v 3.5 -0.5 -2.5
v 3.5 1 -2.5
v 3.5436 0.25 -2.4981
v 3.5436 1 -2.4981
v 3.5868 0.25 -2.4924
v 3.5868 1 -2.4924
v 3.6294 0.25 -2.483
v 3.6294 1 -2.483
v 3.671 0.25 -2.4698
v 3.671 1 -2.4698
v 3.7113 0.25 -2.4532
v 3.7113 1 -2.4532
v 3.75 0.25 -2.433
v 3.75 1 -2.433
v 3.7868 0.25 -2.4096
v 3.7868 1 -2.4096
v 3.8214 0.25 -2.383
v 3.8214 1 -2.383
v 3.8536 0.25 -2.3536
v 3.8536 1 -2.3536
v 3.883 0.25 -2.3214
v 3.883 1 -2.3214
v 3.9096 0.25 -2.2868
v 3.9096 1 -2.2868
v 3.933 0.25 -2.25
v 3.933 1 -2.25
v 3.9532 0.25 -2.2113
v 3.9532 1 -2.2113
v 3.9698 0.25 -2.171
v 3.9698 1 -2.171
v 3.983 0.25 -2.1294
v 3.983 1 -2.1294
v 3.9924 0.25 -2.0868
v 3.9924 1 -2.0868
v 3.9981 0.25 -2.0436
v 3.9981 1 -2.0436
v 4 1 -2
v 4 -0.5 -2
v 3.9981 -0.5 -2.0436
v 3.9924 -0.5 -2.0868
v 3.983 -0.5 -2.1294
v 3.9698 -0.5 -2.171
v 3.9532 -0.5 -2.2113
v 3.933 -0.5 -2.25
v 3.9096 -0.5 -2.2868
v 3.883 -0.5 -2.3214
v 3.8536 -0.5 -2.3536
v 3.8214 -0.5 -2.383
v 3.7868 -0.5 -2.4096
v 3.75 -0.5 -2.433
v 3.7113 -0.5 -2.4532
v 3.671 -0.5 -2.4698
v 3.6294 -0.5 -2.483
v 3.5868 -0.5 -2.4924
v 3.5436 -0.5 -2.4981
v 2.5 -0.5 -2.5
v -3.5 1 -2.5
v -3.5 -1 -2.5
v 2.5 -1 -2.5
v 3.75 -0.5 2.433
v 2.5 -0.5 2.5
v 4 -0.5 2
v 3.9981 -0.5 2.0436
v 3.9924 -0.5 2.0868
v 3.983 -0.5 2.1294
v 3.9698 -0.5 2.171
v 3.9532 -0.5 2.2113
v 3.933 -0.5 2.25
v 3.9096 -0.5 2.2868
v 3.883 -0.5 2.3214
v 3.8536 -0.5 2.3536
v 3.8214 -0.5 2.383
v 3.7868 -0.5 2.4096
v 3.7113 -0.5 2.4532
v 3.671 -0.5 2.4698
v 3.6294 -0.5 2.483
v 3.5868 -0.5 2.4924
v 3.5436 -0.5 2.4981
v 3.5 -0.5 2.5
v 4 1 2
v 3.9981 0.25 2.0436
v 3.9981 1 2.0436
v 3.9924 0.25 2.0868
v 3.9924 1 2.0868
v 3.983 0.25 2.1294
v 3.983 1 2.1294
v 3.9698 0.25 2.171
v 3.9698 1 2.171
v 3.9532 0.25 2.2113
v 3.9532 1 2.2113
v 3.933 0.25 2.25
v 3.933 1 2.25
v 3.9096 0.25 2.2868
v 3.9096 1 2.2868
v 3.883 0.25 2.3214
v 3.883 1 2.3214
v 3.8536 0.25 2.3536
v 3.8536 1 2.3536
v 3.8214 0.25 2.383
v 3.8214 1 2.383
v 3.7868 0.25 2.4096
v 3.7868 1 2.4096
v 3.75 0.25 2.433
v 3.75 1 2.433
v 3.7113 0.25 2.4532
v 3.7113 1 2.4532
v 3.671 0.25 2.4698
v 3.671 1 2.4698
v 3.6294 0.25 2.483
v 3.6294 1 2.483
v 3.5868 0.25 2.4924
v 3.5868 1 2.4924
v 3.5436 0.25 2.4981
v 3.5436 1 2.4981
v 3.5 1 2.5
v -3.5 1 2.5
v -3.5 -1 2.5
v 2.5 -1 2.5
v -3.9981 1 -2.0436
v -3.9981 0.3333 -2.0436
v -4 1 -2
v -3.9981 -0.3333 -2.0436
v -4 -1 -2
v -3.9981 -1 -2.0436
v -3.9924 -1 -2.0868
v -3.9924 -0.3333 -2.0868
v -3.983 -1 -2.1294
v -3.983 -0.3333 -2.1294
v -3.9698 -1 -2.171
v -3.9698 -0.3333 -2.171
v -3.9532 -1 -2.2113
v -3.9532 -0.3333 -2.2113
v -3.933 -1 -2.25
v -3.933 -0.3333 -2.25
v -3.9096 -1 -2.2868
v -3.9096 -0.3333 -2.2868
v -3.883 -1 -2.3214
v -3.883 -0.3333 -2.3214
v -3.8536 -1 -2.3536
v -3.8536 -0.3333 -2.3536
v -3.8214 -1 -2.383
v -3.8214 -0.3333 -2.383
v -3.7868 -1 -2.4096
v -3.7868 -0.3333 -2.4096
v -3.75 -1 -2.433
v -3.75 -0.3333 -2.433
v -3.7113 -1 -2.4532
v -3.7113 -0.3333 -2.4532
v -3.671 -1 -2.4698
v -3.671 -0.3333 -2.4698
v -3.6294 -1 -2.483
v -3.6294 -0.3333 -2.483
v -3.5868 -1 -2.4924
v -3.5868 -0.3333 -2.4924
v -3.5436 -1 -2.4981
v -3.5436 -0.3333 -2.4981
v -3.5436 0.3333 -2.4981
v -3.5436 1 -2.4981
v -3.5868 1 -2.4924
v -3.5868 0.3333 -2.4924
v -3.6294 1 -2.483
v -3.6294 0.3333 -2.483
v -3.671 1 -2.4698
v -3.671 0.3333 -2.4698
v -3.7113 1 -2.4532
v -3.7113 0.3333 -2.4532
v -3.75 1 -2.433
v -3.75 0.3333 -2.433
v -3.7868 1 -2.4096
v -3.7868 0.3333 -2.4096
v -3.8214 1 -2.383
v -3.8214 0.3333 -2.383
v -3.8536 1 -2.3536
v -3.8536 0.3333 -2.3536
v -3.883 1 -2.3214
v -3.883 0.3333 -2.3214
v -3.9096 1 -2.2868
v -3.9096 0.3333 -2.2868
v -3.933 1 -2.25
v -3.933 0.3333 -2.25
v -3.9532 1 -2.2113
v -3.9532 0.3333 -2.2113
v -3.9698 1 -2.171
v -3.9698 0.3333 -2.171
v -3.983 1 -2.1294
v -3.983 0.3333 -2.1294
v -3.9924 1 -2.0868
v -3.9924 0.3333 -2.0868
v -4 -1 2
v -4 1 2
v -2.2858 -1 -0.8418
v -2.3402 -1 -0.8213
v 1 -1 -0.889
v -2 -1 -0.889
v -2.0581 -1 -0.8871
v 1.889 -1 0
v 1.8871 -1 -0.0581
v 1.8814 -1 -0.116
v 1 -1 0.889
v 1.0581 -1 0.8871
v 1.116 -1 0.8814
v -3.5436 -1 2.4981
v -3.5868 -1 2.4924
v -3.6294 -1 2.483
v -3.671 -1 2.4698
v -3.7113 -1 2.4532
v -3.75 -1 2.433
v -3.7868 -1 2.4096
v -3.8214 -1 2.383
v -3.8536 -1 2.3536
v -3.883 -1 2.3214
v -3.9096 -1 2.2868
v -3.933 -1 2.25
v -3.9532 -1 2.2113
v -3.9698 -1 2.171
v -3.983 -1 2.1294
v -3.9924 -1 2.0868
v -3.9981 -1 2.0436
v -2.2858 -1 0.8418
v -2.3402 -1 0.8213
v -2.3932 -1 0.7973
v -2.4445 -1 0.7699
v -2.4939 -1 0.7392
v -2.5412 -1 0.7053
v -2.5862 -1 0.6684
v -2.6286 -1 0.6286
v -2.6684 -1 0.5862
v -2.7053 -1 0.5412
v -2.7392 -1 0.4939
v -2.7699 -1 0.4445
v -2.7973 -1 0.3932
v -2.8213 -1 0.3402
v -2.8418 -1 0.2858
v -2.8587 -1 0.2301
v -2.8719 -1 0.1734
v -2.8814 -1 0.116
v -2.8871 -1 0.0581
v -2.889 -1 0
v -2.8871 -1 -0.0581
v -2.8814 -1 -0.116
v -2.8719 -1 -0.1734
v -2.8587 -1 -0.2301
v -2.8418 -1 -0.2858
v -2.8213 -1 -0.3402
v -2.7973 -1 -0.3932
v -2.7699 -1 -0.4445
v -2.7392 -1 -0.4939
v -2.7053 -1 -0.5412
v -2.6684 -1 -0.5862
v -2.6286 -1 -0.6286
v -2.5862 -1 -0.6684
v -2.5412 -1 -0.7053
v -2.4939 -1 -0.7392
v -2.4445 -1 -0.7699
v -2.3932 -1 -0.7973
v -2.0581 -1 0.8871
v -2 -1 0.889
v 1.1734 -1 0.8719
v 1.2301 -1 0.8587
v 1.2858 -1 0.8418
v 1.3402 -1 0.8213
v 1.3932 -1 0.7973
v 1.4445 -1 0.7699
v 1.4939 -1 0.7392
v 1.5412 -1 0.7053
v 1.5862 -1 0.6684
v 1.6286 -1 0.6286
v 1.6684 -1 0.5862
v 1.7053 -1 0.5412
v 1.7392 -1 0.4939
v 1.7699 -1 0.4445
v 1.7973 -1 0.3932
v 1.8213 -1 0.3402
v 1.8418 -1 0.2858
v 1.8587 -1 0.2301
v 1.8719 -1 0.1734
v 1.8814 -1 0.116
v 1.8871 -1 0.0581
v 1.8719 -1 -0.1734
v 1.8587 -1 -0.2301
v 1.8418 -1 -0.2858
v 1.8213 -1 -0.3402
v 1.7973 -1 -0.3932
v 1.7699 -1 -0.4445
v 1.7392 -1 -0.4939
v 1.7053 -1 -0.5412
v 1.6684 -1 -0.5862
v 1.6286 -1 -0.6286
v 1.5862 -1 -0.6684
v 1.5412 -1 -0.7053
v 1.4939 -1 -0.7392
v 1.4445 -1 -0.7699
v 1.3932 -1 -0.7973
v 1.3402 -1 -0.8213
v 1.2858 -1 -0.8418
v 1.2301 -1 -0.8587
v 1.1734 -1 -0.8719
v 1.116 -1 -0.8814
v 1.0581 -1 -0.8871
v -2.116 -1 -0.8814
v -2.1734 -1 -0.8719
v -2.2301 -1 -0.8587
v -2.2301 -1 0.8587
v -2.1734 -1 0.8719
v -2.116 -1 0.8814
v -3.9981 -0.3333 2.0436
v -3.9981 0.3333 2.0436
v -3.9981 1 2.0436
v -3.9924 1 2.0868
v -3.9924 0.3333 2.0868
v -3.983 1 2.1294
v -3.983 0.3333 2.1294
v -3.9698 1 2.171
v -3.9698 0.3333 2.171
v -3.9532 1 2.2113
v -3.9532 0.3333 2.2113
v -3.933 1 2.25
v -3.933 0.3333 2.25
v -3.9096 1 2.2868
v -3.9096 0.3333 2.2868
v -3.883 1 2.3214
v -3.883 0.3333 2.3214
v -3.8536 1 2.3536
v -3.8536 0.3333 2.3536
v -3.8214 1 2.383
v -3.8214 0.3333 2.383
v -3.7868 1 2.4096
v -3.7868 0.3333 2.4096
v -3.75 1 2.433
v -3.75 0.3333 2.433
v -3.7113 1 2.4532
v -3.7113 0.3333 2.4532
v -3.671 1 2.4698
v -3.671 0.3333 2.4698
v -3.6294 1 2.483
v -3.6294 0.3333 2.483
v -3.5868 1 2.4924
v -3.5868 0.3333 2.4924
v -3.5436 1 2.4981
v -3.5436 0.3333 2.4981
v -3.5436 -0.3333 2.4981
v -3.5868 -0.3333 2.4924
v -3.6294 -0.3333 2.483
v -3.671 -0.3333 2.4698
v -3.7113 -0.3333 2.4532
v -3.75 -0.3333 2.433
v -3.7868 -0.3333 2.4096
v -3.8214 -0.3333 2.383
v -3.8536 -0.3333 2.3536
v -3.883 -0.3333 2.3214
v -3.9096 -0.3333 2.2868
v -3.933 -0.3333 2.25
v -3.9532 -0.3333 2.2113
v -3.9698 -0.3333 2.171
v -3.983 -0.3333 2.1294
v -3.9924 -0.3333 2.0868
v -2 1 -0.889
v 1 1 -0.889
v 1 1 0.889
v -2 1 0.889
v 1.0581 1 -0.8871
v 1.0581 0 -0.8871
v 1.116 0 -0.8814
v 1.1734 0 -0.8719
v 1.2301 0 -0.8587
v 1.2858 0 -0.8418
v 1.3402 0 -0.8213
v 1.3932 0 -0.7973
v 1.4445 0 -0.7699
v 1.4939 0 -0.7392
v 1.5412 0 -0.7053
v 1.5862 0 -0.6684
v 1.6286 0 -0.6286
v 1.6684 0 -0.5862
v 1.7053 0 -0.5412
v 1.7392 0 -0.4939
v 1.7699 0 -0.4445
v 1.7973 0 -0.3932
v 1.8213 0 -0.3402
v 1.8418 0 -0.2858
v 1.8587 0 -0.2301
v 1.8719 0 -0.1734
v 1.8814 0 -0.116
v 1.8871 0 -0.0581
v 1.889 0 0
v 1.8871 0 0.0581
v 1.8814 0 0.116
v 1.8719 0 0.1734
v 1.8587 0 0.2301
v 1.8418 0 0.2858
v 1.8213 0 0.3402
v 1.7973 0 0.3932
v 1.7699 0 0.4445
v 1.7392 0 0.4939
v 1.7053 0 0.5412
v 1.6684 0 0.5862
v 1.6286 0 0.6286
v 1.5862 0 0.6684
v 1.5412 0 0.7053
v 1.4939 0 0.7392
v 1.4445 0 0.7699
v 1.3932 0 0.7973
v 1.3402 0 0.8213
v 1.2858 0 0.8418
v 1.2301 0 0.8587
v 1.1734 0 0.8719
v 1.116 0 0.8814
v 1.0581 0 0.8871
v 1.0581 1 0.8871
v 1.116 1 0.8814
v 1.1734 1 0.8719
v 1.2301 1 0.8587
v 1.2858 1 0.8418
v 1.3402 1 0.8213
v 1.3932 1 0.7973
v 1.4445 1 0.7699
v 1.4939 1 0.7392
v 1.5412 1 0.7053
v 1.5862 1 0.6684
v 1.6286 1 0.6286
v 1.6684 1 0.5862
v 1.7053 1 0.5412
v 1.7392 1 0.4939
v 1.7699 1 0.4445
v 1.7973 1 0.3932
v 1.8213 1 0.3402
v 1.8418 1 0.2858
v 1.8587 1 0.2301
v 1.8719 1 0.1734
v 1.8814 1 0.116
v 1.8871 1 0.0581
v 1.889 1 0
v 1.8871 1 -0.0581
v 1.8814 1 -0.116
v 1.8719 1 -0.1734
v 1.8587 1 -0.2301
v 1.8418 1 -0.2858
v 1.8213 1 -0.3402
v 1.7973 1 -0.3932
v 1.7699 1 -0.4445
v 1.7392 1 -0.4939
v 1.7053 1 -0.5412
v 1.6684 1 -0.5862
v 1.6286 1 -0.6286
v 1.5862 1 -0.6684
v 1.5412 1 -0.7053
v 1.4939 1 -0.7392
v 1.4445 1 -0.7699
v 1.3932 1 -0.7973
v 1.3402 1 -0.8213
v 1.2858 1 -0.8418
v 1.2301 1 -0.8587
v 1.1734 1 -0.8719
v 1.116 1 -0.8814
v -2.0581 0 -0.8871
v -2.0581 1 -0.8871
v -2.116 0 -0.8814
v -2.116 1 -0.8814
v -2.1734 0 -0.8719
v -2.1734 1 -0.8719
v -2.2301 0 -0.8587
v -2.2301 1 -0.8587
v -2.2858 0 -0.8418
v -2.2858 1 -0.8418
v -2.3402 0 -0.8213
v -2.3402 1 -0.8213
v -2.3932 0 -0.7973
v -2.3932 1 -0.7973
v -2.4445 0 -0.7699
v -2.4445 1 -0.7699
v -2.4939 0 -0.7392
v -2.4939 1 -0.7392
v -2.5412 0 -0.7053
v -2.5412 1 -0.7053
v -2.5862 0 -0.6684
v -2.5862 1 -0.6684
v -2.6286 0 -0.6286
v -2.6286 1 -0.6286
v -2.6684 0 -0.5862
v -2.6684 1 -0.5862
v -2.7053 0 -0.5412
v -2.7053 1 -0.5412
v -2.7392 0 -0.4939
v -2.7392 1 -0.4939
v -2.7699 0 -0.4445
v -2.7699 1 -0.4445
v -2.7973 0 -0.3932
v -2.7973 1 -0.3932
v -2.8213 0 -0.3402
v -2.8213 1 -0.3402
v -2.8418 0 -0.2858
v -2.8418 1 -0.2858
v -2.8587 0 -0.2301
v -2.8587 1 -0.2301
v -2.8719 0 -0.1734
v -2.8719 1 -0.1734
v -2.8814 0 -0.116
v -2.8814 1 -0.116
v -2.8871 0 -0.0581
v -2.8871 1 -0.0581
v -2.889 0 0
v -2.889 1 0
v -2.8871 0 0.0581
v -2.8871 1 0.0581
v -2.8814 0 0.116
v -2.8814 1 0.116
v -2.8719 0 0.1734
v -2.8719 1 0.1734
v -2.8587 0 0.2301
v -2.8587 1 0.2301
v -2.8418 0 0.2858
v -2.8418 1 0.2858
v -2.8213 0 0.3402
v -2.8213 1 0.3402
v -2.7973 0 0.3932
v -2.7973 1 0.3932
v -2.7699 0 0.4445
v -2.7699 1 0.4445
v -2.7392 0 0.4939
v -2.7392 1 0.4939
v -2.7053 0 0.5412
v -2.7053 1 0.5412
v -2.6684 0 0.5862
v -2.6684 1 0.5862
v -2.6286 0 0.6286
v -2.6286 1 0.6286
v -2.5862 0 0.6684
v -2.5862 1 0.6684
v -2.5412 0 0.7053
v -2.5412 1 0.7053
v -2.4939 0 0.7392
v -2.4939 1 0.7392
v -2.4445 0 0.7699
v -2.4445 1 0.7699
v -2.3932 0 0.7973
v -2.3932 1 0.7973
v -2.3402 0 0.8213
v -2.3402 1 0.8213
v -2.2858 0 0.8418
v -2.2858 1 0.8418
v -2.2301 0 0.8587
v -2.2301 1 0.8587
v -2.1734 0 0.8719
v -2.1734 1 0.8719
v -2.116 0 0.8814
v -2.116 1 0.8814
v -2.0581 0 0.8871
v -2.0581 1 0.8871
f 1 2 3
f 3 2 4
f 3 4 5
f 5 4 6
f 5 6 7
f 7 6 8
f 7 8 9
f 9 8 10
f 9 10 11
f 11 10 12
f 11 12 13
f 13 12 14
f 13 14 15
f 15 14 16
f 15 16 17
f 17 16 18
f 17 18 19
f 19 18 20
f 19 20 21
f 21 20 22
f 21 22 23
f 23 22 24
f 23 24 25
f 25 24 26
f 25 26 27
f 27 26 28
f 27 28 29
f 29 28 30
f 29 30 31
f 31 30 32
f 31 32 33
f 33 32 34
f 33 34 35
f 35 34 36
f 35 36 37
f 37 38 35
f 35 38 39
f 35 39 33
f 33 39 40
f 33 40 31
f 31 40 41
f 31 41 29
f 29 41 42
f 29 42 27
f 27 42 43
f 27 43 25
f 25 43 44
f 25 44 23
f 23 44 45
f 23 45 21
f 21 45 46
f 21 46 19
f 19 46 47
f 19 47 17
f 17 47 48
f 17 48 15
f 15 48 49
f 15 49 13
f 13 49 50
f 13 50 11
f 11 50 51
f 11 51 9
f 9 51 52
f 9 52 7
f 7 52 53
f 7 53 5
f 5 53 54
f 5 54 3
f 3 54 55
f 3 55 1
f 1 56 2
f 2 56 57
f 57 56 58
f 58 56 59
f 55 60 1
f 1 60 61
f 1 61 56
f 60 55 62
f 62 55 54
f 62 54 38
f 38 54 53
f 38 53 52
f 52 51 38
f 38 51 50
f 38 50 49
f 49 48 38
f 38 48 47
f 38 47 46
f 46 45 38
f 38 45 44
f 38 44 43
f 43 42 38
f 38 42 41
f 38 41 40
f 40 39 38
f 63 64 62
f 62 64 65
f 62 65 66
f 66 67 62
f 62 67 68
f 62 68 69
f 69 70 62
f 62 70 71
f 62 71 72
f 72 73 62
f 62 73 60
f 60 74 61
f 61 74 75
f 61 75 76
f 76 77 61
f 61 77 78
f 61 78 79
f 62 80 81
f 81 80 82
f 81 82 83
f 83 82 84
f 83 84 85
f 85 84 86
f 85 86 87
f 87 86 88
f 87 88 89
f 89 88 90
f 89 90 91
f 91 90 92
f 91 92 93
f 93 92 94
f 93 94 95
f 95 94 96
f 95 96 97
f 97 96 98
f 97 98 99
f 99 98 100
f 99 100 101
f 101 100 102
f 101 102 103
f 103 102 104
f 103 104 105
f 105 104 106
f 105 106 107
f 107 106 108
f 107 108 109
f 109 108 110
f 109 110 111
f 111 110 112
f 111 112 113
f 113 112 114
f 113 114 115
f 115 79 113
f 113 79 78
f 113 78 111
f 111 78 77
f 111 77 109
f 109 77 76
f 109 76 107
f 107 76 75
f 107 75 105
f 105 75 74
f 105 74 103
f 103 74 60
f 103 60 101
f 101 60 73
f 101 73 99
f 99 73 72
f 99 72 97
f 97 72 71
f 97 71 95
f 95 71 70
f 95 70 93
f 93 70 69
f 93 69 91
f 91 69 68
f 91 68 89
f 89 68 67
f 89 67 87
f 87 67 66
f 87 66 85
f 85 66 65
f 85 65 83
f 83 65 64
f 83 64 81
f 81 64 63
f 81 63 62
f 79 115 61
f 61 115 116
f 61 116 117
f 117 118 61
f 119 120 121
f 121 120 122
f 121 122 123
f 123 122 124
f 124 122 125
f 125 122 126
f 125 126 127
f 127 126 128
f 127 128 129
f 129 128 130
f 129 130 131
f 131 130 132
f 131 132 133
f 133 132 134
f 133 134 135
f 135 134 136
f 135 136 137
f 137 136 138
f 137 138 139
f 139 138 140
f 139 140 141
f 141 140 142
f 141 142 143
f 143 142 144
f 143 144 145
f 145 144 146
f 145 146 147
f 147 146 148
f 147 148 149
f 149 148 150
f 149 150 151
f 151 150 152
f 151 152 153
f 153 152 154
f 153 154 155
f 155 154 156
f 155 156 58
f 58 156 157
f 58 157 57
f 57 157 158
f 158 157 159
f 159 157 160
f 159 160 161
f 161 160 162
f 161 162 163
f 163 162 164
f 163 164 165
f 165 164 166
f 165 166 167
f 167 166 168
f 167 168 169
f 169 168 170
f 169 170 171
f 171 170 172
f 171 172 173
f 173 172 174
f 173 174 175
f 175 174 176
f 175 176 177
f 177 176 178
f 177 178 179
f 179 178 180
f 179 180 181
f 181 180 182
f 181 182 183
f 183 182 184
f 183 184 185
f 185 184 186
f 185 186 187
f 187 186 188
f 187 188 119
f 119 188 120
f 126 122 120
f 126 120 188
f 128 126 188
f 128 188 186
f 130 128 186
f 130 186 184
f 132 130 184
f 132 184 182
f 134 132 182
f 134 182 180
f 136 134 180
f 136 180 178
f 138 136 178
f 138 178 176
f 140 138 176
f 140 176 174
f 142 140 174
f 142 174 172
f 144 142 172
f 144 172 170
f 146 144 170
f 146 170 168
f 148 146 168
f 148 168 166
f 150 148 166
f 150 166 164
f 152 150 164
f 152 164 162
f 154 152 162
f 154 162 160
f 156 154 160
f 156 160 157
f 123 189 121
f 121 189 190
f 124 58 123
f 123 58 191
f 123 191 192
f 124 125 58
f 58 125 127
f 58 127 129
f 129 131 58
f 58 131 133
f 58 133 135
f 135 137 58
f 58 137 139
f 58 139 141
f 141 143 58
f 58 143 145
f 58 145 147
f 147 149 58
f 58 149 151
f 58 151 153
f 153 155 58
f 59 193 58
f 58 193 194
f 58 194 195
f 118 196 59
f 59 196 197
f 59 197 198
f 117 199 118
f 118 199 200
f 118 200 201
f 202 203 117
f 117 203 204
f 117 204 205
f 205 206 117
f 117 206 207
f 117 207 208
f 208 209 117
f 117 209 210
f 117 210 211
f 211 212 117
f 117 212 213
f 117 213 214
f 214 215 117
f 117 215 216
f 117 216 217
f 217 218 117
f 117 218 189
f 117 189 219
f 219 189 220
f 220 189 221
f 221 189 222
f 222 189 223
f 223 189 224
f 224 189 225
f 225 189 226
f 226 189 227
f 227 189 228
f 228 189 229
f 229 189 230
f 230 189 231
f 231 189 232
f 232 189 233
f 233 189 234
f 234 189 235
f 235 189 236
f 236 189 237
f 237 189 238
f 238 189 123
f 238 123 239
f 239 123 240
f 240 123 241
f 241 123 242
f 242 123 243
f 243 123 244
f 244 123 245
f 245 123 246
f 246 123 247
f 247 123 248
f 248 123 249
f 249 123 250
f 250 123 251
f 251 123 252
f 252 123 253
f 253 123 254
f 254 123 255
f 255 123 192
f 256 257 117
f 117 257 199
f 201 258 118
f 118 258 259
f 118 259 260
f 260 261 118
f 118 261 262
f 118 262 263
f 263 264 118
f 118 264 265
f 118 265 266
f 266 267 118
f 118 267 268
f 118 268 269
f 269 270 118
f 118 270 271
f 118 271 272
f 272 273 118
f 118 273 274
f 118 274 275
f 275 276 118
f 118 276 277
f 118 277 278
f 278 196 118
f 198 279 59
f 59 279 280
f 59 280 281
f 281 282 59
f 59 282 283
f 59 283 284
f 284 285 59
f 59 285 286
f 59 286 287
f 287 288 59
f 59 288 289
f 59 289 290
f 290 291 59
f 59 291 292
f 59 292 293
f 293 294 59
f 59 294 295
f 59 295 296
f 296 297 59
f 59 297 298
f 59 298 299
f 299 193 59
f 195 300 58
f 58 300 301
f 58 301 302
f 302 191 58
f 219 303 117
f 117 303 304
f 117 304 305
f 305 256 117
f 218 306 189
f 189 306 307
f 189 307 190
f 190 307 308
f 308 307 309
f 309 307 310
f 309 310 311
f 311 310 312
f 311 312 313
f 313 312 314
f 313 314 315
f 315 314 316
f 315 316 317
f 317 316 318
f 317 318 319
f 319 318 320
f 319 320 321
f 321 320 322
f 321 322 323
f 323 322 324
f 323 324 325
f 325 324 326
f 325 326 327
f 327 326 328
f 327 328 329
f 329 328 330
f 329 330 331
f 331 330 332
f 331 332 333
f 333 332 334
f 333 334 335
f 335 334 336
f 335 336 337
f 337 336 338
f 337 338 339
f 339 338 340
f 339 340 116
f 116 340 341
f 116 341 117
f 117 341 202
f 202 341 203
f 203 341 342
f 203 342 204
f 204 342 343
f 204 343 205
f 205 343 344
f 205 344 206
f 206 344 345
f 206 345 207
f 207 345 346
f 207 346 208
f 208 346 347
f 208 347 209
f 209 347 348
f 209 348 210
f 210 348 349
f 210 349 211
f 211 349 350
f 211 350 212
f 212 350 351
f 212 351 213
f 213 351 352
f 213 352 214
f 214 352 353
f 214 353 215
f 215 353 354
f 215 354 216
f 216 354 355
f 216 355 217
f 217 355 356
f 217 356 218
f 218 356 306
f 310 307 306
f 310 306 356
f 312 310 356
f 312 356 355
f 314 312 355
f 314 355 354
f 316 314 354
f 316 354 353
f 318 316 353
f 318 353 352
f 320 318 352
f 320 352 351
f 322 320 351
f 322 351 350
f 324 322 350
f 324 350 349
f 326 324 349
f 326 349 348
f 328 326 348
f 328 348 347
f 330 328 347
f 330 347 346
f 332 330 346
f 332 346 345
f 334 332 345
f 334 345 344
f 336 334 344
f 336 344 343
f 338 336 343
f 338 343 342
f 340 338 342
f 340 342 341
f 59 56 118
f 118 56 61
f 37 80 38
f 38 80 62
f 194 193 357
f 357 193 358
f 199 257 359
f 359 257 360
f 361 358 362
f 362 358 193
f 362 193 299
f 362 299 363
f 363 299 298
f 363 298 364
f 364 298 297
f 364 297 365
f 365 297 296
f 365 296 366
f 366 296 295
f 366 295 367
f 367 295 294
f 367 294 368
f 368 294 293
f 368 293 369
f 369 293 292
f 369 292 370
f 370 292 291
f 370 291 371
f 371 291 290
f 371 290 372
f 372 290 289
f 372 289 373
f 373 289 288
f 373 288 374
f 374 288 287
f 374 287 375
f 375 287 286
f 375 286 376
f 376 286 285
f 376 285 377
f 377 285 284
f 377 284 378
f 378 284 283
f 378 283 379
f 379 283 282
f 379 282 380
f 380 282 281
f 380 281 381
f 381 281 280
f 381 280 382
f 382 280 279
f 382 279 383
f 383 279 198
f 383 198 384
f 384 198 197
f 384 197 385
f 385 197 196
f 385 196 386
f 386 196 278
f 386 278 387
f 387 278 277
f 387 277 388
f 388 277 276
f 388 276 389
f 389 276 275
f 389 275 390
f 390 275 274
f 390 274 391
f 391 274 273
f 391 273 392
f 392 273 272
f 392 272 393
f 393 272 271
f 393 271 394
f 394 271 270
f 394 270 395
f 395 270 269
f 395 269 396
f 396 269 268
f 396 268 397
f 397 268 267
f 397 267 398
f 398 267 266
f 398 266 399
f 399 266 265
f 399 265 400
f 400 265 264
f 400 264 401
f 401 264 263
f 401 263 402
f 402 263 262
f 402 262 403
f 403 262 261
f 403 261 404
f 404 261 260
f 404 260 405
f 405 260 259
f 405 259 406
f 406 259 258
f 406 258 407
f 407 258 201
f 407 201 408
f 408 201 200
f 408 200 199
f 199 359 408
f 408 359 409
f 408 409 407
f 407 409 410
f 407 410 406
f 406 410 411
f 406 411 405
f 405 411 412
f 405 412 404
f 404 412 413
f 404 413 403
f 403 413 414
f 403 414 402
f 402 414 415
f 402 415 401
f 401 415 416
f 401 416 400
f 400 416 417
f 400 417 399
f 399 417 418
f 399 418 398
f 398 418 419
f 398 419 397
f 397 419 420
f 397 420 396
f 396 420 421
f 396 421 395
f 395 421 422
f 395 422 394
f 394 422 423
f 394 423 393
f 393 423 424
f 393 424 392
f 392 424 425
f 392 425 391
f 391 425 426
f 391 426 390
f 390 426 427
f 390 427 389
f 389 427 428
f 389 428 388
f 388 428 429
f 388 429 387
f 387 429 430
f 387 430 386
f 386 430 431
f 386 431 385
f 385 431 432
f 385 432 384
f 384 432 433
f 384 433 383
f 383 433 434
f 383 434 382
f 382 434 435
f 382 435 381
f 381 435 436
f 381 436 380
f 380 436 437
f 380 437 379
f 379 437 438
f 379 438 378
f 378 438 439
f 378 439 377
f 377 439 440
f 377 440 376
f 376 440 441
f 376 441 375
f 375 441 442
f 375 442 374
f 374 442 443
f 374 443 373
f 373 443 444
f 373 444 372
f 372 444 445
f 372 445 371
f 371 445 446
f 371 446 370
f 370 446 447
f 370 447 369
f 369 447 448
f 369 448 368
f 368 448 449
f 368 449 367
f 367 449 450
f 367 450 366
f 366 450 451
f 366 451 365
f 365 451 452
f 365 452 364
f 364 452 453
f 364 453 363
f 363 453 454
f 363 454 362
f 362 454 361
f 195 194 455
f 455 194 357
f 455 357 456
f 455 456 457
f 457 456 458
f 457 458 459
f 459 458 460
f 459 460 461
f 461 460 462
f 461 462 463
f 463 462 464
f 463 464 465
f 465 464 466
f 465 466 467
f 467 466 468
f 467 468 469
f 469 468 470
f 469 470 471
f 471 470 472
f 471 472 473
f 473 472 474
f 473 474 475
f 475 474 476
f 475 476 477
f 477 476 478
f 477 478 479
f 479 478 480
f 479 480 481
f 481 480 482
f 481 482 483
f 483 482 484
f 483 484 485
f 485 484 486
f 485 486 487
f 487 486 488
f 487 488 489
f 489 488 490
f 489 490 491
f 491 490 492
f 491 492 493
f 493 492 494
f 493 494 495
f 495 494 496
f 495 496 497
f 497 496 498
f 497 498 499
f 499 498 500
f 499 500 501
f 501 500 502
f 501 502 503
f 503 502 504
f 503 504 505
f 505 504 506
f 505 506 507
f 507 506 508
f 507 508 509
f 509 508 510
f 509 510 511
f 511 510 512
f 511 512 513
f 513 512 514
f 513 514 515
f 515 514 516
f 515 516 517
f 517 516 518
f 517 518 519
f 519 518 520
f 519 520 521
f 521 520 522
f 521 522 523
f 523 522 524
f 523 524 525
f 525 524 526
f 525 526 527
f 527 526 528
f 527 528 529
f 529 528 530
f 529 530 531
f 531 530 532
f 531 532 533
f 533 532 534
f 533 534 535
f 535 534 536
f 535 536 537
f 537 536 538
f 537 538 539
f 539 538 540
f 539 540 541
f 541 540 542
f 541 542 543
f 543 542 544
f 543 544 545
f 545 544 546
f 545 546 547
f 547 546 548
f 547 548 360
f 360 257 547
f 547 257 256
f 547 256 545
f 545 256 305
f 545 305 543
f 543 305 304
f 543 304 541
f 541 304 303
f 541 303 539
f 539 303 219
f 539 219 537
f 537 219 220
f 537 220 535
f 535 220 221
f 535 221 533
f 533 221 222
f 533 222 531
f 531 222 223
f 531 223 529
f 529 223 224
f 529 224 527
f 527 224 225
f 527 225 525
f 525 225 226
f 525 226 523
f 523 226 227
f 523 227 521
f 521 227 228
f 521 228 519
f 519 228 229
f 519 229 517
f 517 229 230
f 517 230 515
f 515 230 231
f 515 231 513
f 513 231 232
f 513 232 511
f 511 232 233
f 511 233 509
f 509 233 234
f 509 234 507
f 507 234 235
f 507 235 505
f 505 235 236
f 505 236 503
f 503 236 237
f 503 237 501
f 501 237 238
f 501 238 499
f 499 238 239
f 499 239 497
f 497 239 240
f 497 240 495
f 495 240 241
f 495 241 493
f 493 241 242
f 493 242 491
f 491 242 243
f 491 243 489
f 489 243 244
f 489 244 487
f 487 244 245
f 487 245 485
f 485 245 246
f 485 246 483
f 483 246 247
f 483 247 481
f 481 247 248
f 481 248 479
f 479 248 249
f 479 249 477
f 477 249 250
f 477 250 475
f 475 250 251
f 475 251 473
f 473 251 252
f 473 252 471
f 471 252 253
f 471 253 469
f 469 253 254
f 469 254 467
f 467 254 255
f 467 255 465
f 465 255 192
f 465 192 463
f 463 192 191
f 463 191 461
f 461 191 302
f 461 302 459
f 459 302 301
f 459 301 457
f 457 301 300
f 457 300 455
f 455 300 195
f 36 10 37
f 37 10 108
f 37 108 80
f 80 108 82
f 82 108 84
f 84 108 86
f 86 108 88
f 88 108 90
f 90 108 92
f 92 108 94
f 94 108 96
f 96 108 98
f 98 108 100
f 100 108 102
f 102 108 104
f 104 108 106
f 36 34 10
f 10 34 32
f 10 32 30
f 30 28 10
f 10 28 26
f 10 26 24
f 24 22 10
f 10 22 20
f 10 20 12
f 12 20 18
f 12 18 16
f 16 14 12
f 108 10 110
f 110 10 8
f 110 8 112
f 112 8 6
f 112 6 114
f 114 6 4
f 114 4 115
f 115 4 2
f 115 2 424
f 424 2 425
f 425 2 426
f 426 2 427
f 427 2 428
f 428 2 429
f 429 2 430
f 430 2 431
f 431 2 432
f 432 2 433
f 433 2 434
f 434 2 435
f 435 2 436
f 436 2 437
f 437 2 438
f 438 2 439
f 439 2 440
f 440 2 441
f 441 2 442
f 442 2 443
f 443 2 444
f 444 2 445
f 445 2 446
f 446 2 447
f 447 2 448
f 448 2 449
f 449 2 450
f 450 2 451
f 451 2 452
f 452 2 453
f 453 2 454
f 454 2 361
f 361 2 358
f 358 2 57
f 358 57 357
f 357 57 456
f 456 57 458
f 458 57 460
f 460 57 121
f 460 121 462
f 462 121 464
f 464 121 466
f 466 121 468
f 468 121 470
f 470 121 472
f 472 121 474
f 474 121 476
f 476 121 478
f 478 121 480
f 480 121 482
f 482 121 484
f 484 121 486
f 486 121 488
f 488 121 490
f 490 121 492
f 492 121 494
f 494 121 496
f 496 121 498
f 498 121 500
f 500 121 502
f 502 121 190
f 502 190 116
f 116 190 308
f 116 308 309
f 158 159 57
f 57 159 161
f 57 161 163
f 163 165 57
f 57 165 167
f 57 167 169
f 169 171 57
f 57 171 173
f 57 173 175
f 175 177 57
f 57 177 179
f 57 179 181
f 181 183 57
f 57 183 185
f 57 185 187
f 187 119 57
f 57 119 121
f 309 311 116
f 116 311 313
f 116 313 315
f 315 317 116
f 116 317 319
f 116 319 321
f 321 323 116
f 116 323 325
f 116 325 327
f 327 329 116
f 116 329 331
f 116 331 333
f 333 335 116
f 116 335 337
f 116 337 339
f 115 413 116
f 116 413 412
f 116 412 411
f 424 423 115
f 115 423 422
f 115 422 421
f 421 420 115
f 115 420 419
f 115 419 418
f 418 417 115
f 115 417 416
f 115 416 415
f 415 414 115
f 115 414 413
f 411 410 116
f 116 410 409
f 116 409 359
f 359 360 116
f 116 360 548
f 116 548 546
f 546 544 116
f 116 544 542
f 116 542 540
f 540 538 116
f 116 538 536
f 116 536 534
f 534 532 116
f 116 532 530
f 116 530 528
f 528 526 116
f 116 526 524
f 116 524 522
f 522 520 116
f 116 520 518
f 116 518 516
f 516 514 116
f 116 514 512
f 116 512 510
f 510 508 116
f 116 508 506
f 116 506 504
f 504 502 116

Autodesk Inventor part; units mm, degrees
ref_plane "YZ Plane" through (0, 0, 0) normal (1, 0, 0) x (0, 1, 0)
ref_plane "XZ Plane" through (0, 0, 0) normal (0, 1, 0) x (-1, 0, 0)
ref_plane "XY Plane" through (0, 0, 0) normal (0, 0, 1) x (1, 0, 0)
sketch "Sketch1" plane through (0, 0, 0) normal (0, 1, 0) x (-1, 0, 0)
  line L0 (4, 2.5) -> (-4, 2.5)
  line L1 (-4, 2.5) -> (-4, -2.5)
  line L2 (-4, -2.5) -> (4, -2.5)
  line L3 (4, -2.5) -> (4, 2.5)
  line L4 (4, 2.5) -> (-4, -2.5) construction
  line L5 (-4, 2.5) -> (4, -2.5) construction
  circle A0 centre (2, 0) radius 0.889
  circle A1 centre (-1, 0) radius 0.889
  line L6 (2, -0.889) -> (-1, -0.889)
  line L7 (2, 0.889) -> (-1, 0.889)
  point P0 (0, 0)
  point P1 (0, 0)
  point P2 (0, 0)
  point P3 (0, 0)
  dimension "d19" = 8
  dimension "d20" = 5
  dimension "d21" = 1.778
  dimension "d22" = 2
  dimension "d23" = 3
extrude "Extrusion1" add sketch "Sketch1" along normal mid plane 2
sketch "Sketch4" plane through (-4, 1, 2.5) normal (0, 0, 1) x (1, 0, 0)
  line L0 (8, -2) -> (6.5, -2)
  line L1 (6.5, -2) -> (6.5, -1.5)
  line L2 (6.5, -1.5) -> (8, -1.5)
  line L3 (8, -1.5) -> (8, -2)
  line L4 (8, -2) -> (0, -2) projected
  line L5 (8, -2) -> (8, 0) projected
  point P0 (4, -1)
  dimension "d24" = 0.5
  dimension "d25" = 1.5
extrude "Extrusion3" cut sketch "Sketch4" against normal through all
fillet "Fillet2" radius 0.5 4 edges at (-4, 0, 2.5) (-4, 0, -2.5) (4, 0.25, 2.5) (4, 0.25, -2.5)
properties part number "ChipClip"
